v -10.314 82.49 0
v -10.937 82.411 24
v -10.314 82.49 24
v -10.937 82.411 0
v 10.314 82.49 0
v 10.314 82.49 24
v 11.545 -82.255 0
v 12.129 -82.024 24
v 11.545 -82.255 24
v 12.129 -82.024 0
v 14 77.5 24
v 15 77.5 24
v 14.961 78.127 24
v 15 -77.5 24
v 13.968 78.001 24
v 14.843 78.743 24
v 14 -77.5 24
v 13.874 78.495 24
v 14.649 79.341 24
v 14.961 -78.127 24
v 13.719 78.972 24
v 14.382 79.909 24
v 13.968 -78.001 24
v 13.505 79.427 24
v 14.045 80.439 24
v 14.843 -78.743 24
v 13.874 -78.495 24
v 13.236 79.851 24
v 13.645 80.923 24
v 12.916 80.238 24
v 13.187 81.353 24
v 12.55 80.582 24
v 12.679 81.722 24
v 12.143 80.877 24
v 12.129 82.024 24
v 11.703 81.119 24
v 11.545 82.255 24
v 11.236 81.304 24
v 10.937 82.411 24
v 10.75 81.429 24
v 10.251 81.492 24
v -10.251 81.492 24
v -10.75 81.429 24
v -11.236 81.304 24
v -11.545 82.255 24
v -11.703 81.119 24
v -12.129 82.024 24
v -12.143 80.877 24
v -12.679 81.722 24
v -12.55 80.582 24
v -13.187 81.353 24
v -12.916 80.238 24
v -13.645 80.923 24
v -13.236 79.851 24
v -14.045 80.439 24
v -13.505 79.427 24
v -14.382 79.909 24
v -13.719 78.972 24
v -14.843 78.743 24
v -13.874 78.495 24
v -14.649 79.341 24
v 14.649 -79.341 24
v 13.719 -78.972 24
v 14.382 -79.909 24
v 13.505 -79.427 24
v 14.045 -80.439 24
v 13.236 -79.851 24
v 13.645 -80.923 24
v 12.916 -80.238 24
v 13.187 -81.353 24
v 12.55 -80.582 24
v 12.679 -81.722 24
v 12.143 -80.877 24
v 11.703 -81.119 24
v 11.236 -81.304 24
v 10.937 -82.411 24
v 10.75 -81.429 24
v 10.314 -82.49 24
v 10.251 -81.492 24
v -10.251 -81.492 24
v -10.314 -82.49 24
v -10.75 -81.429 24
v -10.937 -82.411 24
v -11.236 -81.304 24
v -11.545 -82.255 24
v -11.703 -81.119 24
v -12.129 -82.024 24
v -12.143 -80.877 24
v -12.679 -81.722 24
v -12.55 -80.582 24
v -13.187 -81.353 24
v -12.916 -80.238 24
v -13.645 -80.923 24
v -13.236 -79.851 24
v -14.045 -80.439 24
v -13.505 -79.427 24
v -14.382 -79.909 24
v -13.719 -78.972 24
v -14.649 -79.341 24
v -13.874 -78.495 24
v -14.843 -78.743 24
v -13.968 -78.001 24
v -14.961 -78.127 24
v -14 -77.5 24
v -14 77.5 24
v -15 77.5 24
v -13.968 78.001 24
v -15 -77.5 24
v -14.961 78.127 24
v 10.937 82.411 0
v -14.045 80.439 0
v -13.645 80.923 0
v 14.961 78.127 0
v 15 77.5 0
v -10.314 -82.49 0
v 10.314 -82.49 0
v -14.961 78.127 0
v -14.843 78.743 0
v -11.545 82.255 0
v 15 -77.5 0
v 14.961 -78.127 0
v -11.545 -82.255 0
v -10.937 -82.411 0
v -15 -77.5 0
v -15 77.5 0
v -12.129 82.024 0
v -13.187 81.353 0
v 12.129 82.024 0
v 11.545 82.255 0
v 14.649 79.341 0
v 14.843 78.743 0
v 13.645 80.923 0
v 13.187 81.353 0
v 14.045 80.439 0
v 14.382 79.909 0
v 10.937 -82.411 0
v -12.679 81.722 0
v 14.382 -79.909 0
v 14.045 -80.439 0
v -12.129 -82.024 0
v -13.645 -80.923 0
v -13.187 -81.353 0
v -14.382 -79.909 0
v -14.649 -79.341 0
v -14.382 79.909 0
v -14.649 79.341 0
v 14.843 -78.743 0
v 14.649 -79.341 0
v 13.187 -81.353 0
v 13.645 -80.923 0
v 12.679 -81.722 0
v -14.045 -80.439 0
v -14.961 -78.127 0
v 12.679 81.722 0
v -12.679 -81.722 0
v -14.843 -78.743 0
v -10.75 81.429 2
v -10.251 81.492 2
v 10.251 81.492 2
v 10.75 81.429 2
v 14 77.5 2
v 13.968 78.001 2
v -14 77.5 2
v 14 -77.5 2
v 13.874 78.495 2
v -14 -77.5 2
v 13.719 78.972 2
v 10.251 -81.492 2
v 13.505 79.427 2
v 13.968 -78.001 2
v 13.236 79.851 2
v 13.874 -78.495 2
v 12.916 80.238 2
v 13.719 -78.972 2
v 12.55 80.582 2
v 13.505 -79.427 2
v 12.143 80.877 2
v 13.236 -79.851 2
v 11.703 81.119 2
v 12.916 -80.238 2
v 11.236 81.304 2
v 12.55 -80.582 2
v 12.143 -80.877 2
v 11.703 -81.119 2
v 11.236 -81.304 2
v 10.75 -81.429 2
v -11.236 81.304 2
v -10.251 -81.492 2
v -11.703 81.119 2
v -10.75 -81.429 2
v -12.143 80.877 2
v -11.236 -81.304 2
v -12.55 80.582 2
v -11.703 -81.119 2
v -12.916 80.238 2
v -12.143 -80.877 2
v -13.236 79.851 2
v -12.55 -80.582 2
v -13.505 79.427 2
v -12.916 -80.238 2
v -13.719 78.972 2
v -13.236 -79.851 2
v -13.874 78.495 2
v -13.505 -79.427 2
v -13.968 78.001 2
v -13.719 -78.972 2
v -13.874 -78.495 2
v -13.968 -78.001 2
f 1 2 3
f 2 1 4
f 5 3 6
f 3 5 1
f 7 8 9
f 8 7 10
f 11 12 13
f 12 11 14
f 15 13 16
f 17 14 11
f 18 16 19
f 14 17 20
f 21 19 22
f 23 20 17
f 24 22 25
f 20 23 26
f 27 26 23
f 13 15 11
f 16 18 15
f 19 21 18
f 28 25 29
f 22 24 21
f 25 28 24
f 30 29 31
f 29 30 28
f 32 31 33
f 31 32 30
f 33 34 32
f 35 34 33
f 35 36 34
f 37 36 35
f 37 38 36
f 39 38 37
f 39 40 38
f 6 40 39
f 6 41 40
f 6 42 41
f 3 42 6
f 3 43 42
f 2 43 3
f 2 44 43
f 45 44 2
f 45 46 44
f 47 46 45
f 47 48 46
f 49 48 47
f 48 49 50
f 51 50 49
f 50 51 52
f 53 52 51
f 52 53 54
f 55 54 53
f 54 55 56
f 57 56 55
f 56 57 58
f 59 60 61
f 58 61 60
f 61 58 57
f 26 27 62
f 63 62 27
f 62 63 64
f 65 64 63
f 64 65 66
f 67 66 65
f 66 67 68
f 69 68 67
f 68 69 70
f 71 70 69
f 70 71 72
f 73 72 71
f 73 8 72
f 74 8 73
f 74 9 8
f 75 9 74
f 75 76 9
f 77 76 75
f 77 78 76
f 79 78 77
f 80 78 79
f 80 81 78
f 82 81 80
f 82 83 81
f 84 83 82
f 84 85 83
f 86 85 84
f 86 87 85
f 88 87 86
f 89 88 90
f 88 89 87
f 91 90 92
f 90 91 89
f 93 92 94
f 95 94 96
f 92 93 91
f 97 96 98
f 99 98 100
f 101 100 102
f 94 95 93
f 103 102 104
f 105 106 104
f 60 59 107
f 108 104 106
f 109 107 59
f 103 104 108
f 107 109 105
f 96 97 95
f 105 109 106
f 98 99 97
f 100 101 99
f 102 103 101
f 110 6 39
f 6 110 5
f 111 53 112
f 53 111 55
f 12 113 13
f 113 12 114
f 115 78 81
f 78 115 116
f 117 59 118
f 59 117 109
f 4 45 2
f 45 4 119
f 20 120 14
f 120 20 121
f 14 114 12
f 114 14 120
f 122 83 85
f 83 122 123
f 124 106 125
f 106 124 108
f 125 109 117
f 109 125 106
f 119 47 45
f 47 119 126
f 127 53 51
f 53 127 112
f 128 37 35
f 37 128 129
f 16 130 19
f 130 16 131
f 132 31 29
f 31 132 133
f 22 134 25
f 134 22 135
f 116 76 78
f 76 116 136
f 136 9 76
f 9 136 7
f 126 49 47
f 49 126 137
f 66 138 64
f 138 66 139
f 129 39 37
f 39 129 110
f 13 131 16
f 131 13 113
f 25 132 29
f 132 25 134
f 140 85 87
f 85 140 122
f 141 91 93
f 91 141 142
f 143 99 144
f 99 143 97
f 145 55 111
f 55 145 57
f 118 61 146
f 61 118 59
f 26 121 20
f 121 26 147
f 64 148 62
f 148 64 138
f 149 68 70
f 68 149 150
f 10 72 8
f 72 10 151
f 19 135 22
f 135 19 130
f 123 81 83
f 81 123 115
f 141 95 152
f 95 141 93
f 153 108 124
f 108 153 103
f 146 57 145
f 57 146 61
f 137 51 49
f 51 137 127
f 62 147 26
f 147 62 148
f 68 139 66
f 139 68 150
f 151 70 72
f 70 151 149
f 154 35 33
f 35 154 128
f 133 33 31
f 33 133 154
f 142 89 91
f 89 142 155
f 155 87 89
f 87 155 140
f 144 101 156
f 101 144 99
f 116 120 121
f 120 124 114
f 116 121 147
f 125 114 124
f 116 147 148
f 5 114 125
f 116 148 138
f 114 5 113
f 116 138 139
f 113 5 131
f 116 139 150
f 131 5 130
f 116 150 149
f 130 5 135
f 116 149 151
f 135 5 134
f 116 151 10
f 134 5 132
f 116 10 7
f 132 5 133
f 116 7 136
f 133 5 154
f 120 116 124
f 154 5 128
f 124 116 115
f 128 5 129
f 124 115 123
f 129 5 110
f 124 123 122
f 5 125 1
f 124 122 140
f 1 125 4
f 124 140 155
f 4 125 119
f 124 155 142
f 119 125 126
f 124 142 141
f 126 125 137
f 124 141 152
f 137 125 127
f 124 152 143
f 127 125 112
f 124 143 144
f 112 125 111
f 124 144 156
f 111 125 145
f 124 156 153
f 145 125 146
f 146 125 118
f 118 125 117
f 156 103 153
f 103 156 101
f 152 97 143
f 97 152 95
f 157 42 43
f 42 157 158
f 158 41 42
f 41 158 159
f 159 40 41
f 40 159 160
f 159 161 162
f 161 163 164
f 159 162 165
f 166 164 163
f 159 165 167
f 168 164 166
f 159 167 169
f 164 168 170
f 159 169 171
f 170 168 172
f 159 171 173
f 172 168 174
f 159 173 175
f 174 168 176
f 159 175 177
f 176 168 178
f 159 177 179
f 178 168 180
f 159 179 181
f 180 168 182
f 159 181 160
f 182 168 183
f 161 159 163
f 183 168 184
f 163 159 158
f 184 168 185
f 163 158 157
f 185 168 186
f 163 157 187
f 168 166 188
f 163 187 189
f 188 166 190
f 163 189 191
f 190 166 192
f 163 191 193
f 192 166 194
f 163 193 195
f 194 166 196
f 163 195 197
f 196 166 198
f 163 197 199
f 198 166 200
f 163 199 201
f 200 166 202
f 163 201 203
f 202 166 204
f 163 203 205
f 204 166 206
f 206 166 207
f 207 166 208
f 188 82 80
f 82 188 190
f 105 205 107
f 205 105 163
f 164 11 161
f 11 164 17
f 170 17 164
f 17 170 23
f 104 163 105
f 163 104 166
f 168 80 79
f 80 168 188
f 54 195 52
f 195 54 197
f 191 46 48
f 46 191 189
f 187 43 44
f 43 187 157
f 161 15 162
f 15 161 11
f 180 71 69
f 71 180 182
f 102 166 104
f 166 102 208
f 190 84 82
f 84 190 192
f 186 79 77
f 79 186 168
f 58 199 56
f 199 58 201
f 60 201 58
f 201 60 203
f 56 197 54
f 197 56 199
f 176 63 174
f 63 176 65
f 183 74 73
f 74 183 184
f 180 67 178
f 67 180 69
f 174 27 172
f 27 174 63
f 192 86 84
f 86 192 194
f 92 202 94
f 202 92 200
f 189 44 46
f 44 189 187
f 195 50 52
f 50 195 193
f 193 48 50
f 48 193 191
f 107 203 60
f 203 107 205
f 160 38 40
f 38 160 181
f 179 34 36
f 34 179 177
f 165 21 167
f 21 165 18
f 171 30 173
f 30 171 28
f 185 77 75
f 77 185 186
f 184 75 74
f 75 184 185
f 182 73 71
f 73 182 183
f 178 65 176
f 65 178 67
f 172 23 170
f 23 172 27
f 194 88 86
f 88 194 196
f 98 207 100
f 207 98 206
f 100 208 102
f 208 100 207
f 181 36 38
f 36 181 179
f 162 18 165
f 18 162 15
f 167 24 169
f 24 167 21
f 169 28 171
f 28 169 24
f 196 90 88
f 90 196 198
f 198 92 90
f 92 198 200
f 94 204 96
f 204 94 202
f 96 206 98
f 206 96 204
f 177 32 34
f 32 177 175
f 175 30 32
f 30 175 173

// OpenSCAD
$fn = 50;


difference() {
	union() {
		hull() {
			translate(v = [-10.0000000000, 77.5000000000, 0]) {
				cylinder(h = 24, r = 5);
			}
			translate(v = [10.0000000000, 77.5000000000, 0]) {
				cylinder(h = 24, r = 5);
			}
			translate(v = [-10.0000000000, -77.5000000000, 0]) {
				cylinder(h = 24, r = 5);
			}
			translate(v = [10.0000000000, -77.5000000000, 0]) {
				cylinder(h = 24, r = 5);
			}
		}
	}
	union() {
		translate(v = [0, 0, 2]) {
			hull() {
				translate(v = [-10.0000000000, 77.5000000000, 0]) {
					cylinder(h = 22, r = 4);
				}
				translate(v = [10.0000000000, 77.5000000000, 0]) {
					cylinder(h = 22, r = 4);
				}
				translate(v = [-10.0000000000, -77.5000000000, 0]) {
					cylinder(h = 22, r = 4);
				}
				translate(v = [10.0000000000, -77.5000000000, 0]) {
					cylinder(h = 22, r = 4);
				}
			}
		}
	}
}
